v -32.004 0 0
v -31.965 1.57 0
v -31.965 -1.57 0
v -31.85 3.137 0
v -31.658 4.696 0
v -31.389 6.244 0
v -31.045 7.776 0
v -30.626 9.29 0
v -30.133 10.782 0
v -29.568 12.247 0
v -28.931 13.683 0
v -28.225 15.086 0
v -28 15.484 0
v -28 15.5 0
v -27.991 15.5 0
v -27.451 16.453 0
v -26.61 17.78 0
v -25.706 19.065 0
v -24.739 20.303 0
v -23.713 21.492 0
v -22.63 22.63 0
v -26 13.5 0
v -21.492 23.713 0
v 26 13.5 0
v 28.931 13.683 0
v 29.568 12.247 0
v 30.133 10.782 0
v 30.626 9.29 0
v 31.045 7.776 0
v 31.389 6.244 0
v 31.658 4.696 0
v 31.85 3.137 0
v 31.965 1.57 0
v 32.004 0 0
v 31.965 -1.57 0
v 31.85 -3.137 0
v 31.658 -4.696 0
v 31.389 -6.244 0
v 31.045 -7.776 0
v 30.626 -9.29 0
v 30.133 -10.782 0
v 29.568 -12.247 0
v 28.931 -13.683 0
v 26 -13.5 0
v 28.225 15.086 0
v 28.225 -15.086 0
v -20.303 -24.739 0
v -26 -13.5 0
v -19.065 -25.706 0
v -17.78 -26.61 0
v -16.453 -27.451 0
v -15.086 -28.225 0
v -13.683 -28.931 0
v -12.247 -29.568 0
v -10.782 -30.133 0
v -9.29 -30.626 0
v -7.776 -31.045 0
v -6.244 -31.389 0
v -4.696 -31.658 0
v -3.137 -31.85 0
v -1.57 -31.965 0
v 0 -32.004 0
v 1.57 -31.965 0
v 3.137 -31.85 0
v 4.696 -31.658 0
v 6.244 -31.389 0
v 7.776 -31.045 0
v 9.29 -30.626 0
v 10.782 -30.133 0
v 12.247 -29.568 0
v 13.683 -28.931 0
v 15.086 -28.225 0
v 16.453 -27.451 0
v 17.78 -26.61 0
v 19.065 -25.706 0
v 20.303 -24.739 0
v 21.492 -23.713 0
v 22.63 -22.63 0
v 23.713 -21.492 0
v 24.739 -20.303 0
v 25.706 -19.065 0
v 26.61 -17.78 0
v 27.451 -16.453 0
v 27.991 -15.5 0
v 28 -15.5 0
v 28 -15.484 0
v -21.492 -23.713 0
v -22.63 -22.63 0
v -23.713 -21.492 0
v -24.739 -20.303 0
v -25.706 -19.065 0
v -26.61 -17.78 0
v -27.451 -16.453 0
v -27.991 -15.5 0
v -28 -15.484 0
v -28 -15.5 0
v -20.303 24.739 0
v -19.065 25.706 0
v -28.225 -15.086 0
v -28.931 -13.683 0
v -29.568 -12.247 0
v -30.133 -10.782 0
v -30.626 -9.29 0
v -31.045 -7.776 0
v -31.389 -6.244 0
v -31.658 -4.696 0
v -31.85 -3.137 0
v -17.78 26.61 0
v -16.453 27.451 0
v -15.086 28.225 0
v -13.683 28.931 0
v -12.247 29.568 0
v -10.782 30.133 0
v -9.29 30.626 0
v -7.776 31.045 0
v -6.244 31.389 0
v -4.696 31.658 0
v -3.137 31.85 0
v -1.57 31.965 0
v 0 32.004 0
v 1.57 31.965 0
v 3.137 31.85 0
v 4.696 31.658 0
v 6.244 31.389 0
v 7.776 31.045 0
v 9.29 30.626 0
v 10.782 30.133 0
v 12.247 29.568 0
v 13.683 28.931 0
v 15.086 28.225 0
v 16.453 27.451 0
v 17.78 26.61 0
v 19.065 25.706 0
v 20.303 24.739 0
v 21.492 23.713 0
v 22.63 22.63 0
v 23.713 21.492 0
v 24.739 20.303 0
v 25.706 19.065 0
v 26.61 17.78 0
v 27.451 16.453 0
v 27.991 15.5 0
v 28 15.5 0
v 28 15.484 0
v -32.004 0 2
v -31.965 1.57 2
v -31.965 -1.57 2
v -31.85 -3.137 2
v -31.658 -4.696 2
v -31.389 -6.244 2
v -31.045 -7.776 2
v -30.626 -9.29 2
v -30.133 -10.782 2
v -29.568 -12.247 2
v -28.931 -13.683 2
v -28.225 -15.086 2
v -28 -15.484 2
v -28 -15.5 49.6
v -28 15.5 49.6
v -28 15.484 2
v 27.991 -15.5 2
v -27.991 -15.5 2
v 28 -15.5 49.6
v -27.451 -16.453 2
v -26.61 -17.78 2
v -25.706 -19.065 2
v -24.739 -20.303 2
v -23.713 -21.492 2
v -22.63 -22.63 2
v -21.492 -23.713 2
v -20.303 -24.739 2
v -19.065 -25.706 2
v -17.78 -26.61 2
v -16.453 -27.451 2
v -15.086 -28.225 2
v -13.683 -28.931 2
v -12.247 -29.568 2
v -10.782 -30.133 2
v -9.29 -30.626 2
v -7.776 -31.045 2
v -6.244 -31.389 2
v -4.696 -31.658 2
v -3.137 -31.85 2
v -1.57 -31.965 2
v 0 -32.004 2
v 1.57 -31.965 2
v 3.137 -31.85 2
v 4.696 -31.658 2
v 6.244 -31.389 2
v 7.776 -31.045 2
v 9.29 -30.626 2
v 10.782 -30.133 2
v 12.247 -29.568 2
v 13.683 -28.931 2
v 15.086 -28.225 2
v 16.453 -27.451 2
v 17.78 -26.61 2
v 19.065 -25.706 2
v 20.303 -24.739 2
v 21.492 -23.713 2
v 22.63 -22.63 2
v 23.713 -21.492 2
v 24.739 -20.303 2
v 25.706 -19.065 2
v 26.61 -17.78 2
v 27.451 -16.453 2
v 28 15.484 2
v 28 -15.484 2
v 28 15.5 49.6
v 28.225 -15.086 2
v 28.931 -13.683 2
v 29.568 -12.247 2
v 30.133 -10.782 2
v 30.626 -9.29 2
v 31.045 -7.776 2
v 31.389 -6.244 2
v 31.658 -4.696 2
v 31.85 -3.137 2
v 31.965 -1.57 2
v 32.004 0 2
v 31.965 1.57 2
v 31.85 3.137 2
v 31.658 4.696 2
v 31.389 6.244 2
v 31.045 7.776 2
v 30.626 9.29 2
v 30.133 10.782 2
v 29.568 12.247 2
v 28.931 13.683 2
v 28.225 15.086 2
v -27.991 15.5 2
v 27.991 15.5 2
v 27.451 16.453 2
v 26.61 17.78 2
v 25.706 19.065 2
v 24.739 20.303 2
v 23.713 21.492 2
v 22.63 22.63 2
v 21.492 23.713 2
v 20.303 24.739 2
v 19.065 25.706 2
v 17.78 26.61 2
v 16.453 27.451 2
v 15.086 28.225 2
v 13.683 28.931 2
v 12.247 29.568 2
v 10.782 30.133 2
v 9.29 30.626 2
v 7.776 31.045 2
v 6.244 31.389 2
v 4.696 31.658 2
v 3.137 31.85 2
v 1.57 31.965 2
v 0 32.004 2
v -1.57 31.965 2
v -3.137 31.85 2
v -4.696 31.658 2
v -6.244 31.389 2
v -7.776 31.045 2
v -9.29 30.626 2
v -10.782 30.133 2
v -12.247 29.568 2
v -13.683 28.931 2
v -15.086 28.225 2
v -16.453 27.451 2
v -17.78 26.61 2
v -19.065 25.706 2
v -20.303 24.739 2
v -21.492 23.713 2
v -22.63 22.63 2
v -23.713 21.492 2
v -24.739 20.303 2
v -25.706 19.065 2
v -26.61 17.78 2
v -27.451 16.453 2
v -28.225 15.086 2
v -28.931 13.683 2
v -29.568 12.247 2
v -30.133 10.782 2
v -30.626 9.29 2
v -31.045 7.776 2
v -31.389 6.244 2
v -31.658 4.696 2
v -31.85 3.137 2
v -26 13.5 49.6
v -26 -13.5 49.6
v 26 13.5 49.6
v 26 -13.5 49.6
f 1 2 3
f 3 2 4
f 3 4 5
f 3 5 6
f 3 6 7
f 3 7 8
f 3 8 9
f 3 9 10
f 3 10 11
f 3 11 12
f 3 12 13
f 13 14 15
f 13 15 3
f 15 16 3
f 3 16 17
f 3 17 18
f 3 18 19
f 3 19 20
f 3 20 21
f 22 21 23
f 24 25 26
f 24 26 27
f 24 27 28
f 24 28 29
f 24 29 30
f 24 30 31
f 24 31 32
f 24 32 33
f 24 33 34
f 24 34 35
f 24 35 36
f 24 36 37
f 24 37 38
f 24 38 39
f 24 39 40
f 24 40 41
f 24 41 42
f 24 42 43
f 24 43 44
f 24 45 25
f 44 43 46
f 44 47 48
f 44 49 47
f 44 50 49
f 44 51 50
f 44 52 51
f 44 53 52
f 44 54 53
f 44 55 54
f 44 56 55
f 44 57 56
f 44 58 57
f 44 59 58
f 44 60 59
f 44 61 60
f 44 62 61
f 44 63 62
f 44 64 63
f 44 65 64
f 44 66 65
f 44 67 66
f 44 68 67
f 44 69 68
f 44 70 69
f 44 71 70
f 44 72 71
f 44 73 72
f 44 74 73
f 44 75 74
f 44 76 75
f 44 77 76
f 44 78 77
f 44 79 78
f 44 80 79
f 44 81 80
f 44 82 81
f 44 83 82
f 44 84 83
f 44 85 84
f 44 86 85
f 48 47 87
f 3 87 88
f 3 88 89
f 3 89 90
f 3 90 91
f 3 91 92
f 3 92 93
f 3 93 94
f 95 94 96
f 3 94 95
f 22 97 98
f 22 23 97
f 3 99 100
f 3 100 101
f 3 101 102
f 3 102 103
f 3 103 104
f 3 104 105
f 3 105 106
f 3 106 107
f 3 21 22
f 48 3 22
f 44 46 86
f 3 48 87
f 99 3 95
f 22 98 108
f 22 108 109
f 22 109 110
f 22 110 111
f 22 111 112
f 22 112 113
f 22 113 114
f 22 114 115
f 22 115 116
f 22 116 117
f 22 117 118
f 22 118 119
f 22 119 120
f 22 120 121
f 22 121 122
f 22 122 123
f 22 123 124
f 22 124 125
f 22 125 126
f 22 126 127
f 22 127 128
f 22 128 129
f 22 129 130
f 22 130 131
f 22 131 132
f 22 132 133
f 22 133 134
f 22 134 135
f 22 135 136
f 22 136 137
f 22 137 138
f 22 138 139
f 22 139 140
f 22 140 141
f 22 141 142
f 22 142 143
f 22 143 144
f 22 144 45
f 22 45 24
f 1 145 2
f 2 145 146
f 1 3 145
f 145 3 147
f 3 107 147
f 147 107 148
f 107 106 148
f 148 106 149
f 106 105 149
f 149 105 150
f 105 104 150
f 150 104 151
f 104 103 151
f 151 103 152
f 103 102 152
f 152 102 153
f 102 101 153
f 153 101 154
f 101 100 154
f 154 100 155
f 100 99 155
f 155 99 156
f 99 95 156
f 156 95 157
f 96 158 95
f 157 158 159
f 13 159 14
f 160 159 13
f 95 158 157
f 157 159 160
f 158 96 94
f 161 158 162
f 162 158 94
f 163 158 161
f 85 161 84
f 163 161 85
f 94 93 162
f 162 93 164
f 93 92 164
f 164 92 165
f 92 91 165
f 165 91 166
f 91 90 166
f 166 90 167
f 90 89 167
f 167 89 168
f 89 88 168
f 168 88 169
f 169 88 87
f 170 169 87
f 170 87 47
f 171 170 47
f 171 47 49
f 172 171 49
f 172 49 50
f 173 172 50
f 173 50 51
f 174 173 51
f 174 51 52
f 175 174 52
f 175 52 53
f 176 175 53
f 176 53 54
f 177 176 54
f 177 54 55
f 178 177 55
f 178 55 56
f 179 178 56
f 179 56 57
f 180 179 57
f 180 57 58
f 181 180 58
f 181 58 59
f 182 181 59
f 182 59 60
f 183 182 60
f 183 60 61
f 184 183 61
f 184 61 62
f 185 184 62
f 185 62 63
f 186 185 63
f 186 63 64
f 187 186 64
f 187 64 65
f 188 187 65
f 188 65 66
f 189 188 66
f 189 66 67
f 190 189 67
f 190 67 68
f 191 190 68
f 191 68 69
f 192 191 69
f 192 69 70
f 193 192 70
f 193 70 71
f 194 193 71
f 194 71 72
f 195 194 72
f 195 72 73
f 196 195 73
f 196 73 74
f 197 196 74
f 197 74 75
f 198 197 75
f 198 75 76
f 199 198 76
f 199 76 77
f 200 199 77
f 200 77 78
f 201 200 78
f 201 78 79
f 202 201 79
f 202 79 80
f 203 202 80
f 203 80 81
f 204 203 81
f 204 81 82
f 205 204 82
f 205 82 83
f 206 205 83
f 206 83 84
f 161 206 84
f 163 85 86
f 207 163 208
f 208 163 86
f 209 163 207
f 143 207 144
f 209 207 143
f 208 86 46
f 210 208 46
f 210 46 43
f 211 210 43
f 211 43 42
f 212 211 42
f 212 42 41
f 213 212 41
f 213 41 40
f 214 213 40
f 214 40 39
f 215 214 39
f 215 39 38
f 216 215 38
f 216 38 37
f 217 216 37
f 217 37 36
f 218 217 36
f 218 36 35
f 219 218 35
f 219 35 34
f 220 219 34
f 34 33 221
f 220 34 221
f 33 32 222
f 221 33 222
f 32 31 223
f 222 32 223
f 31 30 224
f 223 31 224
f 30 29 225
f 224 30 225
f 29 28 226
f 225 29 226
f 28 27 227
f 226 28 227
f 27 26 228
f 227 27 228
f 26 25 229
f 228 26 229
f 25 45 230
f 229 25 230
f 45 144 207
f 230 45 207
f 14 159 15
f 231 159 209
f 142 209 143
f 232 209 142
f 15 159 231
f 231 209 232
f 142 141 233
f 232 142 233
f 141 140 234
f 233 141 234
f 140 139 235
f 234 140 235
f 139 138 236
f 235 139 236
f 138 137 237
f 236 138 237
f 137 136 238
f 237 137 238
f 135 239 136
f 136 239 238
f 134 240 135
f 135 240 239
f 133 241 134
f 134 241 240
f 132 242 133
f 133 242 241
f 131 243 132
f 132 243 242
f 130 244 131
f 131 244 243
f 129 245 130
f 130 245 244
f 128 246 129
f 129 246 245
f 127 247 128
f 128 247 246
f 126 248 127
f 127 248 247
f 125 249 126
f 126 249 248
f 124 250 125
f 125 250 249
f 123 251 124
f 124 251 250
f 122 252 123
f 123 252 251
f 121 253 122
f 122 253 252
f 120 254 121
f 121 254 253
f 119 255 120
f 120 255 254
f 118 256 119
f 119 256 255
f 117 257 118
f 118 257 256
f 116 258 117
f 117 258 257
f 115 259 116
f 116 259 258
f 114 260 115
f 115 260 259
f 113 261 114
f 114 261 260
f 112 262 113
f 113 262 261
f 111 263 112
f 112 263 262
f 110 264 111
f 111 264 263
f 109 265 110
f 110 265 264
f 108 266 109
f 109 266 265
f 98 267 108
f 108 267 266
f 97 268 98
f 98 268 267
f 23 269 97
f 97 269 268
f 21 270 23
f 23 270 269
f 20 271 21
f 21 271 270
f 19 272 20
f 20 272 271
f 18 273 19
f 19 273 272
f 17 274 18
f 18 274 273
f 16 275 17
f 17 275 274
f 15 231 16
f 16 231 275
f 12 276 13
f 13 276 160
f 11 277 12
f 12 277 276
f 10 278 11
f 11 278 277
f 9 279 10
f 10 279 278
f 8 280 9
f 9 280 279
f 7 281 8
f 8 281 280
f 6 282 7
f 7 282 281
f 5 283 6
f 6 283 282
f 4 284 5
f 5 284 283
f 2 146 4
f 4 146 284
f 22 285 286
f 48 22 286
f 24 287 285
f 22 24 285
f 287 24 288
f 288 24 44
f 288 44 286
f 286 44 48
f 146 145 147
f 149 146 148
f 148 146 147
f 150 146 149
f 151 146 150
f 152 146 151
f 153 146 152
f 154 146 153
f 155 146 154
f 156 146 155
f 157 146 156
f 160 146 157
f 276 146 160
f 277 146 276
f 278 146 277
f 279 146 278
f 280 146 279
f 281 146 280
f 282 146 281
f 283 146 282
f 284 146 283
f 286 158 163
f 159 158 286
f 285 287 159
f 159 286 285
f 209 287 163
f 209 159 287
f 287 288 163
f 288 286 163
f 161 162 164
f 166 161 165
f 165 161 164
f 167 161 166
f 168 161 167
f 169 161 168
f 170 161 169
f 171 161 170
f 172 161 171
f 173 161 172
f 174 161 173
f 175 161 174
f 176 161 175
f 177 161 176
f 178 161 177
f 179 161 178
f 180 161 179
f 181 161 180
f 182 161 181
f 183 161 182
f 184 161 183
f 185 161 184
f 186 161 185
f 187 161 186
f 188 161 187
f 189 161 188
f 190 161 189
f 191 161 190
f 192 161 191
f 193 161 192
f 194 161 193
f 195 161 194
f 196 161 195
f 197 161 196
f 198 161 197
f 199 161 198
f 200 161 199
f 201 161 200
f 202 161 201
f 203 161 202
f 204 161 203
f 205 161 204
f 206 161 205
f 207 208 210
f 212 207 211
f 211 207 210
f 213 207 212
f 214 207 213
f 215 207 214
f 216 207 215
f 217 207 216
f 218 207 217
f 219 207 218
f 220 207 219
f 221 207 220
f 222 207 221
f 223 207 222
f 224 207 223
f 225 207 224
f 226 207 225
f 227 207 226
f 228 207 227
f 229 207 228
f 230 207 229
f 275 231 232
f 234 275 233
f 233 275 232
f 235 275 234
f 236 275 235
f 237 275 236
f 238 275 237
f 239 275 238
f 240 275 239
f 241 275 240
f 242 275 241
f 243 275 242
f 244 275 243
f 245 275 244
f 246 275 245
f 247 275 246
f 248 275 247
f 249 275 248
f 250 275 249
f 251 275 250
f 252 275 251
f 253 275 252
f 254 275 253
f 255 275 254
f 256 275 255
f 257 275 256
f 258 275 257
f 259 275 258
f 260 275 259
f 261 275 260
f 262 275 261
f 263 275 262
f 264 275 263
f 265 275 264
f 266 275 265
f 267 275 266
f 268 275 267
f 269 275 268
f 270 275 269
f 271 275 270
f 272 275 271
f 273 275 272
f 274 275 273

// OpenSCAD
$fn=128;
heightOfBlock=62;
widthOfBlock=51;
thicknessOfBlock=26;

holeWidth=widthOfBlock+1;
holeThickness=thicknessOfBlock+1;

totalHeight=0.8*heightOfBlock;
wallThickness=2;
outerRectangleWidth=holeWidth+2*wallThickness;
outerRectangleThickness=holeThickness+2*wallThickness;
circleRadius=sqrt(pow(outerRectangleWidth/2,2) + pow(outerRectangleThickness/2,2));
echo("circleRadius=", circleRadius);

difference() {
  union() {
    translate([-outerRectangleWidth/2, -outerRectangleThickness/2, 0]) cube([outerRectangleWidth, outerRectangleThickness, totalHeight]);
    cylinder(r=circleRadius, h=2);
  }
  translate([-holeWidth/2, -holeThickness/2, -5]) cube([holeWidth, holeThickness, totalHeight+10]);

}
